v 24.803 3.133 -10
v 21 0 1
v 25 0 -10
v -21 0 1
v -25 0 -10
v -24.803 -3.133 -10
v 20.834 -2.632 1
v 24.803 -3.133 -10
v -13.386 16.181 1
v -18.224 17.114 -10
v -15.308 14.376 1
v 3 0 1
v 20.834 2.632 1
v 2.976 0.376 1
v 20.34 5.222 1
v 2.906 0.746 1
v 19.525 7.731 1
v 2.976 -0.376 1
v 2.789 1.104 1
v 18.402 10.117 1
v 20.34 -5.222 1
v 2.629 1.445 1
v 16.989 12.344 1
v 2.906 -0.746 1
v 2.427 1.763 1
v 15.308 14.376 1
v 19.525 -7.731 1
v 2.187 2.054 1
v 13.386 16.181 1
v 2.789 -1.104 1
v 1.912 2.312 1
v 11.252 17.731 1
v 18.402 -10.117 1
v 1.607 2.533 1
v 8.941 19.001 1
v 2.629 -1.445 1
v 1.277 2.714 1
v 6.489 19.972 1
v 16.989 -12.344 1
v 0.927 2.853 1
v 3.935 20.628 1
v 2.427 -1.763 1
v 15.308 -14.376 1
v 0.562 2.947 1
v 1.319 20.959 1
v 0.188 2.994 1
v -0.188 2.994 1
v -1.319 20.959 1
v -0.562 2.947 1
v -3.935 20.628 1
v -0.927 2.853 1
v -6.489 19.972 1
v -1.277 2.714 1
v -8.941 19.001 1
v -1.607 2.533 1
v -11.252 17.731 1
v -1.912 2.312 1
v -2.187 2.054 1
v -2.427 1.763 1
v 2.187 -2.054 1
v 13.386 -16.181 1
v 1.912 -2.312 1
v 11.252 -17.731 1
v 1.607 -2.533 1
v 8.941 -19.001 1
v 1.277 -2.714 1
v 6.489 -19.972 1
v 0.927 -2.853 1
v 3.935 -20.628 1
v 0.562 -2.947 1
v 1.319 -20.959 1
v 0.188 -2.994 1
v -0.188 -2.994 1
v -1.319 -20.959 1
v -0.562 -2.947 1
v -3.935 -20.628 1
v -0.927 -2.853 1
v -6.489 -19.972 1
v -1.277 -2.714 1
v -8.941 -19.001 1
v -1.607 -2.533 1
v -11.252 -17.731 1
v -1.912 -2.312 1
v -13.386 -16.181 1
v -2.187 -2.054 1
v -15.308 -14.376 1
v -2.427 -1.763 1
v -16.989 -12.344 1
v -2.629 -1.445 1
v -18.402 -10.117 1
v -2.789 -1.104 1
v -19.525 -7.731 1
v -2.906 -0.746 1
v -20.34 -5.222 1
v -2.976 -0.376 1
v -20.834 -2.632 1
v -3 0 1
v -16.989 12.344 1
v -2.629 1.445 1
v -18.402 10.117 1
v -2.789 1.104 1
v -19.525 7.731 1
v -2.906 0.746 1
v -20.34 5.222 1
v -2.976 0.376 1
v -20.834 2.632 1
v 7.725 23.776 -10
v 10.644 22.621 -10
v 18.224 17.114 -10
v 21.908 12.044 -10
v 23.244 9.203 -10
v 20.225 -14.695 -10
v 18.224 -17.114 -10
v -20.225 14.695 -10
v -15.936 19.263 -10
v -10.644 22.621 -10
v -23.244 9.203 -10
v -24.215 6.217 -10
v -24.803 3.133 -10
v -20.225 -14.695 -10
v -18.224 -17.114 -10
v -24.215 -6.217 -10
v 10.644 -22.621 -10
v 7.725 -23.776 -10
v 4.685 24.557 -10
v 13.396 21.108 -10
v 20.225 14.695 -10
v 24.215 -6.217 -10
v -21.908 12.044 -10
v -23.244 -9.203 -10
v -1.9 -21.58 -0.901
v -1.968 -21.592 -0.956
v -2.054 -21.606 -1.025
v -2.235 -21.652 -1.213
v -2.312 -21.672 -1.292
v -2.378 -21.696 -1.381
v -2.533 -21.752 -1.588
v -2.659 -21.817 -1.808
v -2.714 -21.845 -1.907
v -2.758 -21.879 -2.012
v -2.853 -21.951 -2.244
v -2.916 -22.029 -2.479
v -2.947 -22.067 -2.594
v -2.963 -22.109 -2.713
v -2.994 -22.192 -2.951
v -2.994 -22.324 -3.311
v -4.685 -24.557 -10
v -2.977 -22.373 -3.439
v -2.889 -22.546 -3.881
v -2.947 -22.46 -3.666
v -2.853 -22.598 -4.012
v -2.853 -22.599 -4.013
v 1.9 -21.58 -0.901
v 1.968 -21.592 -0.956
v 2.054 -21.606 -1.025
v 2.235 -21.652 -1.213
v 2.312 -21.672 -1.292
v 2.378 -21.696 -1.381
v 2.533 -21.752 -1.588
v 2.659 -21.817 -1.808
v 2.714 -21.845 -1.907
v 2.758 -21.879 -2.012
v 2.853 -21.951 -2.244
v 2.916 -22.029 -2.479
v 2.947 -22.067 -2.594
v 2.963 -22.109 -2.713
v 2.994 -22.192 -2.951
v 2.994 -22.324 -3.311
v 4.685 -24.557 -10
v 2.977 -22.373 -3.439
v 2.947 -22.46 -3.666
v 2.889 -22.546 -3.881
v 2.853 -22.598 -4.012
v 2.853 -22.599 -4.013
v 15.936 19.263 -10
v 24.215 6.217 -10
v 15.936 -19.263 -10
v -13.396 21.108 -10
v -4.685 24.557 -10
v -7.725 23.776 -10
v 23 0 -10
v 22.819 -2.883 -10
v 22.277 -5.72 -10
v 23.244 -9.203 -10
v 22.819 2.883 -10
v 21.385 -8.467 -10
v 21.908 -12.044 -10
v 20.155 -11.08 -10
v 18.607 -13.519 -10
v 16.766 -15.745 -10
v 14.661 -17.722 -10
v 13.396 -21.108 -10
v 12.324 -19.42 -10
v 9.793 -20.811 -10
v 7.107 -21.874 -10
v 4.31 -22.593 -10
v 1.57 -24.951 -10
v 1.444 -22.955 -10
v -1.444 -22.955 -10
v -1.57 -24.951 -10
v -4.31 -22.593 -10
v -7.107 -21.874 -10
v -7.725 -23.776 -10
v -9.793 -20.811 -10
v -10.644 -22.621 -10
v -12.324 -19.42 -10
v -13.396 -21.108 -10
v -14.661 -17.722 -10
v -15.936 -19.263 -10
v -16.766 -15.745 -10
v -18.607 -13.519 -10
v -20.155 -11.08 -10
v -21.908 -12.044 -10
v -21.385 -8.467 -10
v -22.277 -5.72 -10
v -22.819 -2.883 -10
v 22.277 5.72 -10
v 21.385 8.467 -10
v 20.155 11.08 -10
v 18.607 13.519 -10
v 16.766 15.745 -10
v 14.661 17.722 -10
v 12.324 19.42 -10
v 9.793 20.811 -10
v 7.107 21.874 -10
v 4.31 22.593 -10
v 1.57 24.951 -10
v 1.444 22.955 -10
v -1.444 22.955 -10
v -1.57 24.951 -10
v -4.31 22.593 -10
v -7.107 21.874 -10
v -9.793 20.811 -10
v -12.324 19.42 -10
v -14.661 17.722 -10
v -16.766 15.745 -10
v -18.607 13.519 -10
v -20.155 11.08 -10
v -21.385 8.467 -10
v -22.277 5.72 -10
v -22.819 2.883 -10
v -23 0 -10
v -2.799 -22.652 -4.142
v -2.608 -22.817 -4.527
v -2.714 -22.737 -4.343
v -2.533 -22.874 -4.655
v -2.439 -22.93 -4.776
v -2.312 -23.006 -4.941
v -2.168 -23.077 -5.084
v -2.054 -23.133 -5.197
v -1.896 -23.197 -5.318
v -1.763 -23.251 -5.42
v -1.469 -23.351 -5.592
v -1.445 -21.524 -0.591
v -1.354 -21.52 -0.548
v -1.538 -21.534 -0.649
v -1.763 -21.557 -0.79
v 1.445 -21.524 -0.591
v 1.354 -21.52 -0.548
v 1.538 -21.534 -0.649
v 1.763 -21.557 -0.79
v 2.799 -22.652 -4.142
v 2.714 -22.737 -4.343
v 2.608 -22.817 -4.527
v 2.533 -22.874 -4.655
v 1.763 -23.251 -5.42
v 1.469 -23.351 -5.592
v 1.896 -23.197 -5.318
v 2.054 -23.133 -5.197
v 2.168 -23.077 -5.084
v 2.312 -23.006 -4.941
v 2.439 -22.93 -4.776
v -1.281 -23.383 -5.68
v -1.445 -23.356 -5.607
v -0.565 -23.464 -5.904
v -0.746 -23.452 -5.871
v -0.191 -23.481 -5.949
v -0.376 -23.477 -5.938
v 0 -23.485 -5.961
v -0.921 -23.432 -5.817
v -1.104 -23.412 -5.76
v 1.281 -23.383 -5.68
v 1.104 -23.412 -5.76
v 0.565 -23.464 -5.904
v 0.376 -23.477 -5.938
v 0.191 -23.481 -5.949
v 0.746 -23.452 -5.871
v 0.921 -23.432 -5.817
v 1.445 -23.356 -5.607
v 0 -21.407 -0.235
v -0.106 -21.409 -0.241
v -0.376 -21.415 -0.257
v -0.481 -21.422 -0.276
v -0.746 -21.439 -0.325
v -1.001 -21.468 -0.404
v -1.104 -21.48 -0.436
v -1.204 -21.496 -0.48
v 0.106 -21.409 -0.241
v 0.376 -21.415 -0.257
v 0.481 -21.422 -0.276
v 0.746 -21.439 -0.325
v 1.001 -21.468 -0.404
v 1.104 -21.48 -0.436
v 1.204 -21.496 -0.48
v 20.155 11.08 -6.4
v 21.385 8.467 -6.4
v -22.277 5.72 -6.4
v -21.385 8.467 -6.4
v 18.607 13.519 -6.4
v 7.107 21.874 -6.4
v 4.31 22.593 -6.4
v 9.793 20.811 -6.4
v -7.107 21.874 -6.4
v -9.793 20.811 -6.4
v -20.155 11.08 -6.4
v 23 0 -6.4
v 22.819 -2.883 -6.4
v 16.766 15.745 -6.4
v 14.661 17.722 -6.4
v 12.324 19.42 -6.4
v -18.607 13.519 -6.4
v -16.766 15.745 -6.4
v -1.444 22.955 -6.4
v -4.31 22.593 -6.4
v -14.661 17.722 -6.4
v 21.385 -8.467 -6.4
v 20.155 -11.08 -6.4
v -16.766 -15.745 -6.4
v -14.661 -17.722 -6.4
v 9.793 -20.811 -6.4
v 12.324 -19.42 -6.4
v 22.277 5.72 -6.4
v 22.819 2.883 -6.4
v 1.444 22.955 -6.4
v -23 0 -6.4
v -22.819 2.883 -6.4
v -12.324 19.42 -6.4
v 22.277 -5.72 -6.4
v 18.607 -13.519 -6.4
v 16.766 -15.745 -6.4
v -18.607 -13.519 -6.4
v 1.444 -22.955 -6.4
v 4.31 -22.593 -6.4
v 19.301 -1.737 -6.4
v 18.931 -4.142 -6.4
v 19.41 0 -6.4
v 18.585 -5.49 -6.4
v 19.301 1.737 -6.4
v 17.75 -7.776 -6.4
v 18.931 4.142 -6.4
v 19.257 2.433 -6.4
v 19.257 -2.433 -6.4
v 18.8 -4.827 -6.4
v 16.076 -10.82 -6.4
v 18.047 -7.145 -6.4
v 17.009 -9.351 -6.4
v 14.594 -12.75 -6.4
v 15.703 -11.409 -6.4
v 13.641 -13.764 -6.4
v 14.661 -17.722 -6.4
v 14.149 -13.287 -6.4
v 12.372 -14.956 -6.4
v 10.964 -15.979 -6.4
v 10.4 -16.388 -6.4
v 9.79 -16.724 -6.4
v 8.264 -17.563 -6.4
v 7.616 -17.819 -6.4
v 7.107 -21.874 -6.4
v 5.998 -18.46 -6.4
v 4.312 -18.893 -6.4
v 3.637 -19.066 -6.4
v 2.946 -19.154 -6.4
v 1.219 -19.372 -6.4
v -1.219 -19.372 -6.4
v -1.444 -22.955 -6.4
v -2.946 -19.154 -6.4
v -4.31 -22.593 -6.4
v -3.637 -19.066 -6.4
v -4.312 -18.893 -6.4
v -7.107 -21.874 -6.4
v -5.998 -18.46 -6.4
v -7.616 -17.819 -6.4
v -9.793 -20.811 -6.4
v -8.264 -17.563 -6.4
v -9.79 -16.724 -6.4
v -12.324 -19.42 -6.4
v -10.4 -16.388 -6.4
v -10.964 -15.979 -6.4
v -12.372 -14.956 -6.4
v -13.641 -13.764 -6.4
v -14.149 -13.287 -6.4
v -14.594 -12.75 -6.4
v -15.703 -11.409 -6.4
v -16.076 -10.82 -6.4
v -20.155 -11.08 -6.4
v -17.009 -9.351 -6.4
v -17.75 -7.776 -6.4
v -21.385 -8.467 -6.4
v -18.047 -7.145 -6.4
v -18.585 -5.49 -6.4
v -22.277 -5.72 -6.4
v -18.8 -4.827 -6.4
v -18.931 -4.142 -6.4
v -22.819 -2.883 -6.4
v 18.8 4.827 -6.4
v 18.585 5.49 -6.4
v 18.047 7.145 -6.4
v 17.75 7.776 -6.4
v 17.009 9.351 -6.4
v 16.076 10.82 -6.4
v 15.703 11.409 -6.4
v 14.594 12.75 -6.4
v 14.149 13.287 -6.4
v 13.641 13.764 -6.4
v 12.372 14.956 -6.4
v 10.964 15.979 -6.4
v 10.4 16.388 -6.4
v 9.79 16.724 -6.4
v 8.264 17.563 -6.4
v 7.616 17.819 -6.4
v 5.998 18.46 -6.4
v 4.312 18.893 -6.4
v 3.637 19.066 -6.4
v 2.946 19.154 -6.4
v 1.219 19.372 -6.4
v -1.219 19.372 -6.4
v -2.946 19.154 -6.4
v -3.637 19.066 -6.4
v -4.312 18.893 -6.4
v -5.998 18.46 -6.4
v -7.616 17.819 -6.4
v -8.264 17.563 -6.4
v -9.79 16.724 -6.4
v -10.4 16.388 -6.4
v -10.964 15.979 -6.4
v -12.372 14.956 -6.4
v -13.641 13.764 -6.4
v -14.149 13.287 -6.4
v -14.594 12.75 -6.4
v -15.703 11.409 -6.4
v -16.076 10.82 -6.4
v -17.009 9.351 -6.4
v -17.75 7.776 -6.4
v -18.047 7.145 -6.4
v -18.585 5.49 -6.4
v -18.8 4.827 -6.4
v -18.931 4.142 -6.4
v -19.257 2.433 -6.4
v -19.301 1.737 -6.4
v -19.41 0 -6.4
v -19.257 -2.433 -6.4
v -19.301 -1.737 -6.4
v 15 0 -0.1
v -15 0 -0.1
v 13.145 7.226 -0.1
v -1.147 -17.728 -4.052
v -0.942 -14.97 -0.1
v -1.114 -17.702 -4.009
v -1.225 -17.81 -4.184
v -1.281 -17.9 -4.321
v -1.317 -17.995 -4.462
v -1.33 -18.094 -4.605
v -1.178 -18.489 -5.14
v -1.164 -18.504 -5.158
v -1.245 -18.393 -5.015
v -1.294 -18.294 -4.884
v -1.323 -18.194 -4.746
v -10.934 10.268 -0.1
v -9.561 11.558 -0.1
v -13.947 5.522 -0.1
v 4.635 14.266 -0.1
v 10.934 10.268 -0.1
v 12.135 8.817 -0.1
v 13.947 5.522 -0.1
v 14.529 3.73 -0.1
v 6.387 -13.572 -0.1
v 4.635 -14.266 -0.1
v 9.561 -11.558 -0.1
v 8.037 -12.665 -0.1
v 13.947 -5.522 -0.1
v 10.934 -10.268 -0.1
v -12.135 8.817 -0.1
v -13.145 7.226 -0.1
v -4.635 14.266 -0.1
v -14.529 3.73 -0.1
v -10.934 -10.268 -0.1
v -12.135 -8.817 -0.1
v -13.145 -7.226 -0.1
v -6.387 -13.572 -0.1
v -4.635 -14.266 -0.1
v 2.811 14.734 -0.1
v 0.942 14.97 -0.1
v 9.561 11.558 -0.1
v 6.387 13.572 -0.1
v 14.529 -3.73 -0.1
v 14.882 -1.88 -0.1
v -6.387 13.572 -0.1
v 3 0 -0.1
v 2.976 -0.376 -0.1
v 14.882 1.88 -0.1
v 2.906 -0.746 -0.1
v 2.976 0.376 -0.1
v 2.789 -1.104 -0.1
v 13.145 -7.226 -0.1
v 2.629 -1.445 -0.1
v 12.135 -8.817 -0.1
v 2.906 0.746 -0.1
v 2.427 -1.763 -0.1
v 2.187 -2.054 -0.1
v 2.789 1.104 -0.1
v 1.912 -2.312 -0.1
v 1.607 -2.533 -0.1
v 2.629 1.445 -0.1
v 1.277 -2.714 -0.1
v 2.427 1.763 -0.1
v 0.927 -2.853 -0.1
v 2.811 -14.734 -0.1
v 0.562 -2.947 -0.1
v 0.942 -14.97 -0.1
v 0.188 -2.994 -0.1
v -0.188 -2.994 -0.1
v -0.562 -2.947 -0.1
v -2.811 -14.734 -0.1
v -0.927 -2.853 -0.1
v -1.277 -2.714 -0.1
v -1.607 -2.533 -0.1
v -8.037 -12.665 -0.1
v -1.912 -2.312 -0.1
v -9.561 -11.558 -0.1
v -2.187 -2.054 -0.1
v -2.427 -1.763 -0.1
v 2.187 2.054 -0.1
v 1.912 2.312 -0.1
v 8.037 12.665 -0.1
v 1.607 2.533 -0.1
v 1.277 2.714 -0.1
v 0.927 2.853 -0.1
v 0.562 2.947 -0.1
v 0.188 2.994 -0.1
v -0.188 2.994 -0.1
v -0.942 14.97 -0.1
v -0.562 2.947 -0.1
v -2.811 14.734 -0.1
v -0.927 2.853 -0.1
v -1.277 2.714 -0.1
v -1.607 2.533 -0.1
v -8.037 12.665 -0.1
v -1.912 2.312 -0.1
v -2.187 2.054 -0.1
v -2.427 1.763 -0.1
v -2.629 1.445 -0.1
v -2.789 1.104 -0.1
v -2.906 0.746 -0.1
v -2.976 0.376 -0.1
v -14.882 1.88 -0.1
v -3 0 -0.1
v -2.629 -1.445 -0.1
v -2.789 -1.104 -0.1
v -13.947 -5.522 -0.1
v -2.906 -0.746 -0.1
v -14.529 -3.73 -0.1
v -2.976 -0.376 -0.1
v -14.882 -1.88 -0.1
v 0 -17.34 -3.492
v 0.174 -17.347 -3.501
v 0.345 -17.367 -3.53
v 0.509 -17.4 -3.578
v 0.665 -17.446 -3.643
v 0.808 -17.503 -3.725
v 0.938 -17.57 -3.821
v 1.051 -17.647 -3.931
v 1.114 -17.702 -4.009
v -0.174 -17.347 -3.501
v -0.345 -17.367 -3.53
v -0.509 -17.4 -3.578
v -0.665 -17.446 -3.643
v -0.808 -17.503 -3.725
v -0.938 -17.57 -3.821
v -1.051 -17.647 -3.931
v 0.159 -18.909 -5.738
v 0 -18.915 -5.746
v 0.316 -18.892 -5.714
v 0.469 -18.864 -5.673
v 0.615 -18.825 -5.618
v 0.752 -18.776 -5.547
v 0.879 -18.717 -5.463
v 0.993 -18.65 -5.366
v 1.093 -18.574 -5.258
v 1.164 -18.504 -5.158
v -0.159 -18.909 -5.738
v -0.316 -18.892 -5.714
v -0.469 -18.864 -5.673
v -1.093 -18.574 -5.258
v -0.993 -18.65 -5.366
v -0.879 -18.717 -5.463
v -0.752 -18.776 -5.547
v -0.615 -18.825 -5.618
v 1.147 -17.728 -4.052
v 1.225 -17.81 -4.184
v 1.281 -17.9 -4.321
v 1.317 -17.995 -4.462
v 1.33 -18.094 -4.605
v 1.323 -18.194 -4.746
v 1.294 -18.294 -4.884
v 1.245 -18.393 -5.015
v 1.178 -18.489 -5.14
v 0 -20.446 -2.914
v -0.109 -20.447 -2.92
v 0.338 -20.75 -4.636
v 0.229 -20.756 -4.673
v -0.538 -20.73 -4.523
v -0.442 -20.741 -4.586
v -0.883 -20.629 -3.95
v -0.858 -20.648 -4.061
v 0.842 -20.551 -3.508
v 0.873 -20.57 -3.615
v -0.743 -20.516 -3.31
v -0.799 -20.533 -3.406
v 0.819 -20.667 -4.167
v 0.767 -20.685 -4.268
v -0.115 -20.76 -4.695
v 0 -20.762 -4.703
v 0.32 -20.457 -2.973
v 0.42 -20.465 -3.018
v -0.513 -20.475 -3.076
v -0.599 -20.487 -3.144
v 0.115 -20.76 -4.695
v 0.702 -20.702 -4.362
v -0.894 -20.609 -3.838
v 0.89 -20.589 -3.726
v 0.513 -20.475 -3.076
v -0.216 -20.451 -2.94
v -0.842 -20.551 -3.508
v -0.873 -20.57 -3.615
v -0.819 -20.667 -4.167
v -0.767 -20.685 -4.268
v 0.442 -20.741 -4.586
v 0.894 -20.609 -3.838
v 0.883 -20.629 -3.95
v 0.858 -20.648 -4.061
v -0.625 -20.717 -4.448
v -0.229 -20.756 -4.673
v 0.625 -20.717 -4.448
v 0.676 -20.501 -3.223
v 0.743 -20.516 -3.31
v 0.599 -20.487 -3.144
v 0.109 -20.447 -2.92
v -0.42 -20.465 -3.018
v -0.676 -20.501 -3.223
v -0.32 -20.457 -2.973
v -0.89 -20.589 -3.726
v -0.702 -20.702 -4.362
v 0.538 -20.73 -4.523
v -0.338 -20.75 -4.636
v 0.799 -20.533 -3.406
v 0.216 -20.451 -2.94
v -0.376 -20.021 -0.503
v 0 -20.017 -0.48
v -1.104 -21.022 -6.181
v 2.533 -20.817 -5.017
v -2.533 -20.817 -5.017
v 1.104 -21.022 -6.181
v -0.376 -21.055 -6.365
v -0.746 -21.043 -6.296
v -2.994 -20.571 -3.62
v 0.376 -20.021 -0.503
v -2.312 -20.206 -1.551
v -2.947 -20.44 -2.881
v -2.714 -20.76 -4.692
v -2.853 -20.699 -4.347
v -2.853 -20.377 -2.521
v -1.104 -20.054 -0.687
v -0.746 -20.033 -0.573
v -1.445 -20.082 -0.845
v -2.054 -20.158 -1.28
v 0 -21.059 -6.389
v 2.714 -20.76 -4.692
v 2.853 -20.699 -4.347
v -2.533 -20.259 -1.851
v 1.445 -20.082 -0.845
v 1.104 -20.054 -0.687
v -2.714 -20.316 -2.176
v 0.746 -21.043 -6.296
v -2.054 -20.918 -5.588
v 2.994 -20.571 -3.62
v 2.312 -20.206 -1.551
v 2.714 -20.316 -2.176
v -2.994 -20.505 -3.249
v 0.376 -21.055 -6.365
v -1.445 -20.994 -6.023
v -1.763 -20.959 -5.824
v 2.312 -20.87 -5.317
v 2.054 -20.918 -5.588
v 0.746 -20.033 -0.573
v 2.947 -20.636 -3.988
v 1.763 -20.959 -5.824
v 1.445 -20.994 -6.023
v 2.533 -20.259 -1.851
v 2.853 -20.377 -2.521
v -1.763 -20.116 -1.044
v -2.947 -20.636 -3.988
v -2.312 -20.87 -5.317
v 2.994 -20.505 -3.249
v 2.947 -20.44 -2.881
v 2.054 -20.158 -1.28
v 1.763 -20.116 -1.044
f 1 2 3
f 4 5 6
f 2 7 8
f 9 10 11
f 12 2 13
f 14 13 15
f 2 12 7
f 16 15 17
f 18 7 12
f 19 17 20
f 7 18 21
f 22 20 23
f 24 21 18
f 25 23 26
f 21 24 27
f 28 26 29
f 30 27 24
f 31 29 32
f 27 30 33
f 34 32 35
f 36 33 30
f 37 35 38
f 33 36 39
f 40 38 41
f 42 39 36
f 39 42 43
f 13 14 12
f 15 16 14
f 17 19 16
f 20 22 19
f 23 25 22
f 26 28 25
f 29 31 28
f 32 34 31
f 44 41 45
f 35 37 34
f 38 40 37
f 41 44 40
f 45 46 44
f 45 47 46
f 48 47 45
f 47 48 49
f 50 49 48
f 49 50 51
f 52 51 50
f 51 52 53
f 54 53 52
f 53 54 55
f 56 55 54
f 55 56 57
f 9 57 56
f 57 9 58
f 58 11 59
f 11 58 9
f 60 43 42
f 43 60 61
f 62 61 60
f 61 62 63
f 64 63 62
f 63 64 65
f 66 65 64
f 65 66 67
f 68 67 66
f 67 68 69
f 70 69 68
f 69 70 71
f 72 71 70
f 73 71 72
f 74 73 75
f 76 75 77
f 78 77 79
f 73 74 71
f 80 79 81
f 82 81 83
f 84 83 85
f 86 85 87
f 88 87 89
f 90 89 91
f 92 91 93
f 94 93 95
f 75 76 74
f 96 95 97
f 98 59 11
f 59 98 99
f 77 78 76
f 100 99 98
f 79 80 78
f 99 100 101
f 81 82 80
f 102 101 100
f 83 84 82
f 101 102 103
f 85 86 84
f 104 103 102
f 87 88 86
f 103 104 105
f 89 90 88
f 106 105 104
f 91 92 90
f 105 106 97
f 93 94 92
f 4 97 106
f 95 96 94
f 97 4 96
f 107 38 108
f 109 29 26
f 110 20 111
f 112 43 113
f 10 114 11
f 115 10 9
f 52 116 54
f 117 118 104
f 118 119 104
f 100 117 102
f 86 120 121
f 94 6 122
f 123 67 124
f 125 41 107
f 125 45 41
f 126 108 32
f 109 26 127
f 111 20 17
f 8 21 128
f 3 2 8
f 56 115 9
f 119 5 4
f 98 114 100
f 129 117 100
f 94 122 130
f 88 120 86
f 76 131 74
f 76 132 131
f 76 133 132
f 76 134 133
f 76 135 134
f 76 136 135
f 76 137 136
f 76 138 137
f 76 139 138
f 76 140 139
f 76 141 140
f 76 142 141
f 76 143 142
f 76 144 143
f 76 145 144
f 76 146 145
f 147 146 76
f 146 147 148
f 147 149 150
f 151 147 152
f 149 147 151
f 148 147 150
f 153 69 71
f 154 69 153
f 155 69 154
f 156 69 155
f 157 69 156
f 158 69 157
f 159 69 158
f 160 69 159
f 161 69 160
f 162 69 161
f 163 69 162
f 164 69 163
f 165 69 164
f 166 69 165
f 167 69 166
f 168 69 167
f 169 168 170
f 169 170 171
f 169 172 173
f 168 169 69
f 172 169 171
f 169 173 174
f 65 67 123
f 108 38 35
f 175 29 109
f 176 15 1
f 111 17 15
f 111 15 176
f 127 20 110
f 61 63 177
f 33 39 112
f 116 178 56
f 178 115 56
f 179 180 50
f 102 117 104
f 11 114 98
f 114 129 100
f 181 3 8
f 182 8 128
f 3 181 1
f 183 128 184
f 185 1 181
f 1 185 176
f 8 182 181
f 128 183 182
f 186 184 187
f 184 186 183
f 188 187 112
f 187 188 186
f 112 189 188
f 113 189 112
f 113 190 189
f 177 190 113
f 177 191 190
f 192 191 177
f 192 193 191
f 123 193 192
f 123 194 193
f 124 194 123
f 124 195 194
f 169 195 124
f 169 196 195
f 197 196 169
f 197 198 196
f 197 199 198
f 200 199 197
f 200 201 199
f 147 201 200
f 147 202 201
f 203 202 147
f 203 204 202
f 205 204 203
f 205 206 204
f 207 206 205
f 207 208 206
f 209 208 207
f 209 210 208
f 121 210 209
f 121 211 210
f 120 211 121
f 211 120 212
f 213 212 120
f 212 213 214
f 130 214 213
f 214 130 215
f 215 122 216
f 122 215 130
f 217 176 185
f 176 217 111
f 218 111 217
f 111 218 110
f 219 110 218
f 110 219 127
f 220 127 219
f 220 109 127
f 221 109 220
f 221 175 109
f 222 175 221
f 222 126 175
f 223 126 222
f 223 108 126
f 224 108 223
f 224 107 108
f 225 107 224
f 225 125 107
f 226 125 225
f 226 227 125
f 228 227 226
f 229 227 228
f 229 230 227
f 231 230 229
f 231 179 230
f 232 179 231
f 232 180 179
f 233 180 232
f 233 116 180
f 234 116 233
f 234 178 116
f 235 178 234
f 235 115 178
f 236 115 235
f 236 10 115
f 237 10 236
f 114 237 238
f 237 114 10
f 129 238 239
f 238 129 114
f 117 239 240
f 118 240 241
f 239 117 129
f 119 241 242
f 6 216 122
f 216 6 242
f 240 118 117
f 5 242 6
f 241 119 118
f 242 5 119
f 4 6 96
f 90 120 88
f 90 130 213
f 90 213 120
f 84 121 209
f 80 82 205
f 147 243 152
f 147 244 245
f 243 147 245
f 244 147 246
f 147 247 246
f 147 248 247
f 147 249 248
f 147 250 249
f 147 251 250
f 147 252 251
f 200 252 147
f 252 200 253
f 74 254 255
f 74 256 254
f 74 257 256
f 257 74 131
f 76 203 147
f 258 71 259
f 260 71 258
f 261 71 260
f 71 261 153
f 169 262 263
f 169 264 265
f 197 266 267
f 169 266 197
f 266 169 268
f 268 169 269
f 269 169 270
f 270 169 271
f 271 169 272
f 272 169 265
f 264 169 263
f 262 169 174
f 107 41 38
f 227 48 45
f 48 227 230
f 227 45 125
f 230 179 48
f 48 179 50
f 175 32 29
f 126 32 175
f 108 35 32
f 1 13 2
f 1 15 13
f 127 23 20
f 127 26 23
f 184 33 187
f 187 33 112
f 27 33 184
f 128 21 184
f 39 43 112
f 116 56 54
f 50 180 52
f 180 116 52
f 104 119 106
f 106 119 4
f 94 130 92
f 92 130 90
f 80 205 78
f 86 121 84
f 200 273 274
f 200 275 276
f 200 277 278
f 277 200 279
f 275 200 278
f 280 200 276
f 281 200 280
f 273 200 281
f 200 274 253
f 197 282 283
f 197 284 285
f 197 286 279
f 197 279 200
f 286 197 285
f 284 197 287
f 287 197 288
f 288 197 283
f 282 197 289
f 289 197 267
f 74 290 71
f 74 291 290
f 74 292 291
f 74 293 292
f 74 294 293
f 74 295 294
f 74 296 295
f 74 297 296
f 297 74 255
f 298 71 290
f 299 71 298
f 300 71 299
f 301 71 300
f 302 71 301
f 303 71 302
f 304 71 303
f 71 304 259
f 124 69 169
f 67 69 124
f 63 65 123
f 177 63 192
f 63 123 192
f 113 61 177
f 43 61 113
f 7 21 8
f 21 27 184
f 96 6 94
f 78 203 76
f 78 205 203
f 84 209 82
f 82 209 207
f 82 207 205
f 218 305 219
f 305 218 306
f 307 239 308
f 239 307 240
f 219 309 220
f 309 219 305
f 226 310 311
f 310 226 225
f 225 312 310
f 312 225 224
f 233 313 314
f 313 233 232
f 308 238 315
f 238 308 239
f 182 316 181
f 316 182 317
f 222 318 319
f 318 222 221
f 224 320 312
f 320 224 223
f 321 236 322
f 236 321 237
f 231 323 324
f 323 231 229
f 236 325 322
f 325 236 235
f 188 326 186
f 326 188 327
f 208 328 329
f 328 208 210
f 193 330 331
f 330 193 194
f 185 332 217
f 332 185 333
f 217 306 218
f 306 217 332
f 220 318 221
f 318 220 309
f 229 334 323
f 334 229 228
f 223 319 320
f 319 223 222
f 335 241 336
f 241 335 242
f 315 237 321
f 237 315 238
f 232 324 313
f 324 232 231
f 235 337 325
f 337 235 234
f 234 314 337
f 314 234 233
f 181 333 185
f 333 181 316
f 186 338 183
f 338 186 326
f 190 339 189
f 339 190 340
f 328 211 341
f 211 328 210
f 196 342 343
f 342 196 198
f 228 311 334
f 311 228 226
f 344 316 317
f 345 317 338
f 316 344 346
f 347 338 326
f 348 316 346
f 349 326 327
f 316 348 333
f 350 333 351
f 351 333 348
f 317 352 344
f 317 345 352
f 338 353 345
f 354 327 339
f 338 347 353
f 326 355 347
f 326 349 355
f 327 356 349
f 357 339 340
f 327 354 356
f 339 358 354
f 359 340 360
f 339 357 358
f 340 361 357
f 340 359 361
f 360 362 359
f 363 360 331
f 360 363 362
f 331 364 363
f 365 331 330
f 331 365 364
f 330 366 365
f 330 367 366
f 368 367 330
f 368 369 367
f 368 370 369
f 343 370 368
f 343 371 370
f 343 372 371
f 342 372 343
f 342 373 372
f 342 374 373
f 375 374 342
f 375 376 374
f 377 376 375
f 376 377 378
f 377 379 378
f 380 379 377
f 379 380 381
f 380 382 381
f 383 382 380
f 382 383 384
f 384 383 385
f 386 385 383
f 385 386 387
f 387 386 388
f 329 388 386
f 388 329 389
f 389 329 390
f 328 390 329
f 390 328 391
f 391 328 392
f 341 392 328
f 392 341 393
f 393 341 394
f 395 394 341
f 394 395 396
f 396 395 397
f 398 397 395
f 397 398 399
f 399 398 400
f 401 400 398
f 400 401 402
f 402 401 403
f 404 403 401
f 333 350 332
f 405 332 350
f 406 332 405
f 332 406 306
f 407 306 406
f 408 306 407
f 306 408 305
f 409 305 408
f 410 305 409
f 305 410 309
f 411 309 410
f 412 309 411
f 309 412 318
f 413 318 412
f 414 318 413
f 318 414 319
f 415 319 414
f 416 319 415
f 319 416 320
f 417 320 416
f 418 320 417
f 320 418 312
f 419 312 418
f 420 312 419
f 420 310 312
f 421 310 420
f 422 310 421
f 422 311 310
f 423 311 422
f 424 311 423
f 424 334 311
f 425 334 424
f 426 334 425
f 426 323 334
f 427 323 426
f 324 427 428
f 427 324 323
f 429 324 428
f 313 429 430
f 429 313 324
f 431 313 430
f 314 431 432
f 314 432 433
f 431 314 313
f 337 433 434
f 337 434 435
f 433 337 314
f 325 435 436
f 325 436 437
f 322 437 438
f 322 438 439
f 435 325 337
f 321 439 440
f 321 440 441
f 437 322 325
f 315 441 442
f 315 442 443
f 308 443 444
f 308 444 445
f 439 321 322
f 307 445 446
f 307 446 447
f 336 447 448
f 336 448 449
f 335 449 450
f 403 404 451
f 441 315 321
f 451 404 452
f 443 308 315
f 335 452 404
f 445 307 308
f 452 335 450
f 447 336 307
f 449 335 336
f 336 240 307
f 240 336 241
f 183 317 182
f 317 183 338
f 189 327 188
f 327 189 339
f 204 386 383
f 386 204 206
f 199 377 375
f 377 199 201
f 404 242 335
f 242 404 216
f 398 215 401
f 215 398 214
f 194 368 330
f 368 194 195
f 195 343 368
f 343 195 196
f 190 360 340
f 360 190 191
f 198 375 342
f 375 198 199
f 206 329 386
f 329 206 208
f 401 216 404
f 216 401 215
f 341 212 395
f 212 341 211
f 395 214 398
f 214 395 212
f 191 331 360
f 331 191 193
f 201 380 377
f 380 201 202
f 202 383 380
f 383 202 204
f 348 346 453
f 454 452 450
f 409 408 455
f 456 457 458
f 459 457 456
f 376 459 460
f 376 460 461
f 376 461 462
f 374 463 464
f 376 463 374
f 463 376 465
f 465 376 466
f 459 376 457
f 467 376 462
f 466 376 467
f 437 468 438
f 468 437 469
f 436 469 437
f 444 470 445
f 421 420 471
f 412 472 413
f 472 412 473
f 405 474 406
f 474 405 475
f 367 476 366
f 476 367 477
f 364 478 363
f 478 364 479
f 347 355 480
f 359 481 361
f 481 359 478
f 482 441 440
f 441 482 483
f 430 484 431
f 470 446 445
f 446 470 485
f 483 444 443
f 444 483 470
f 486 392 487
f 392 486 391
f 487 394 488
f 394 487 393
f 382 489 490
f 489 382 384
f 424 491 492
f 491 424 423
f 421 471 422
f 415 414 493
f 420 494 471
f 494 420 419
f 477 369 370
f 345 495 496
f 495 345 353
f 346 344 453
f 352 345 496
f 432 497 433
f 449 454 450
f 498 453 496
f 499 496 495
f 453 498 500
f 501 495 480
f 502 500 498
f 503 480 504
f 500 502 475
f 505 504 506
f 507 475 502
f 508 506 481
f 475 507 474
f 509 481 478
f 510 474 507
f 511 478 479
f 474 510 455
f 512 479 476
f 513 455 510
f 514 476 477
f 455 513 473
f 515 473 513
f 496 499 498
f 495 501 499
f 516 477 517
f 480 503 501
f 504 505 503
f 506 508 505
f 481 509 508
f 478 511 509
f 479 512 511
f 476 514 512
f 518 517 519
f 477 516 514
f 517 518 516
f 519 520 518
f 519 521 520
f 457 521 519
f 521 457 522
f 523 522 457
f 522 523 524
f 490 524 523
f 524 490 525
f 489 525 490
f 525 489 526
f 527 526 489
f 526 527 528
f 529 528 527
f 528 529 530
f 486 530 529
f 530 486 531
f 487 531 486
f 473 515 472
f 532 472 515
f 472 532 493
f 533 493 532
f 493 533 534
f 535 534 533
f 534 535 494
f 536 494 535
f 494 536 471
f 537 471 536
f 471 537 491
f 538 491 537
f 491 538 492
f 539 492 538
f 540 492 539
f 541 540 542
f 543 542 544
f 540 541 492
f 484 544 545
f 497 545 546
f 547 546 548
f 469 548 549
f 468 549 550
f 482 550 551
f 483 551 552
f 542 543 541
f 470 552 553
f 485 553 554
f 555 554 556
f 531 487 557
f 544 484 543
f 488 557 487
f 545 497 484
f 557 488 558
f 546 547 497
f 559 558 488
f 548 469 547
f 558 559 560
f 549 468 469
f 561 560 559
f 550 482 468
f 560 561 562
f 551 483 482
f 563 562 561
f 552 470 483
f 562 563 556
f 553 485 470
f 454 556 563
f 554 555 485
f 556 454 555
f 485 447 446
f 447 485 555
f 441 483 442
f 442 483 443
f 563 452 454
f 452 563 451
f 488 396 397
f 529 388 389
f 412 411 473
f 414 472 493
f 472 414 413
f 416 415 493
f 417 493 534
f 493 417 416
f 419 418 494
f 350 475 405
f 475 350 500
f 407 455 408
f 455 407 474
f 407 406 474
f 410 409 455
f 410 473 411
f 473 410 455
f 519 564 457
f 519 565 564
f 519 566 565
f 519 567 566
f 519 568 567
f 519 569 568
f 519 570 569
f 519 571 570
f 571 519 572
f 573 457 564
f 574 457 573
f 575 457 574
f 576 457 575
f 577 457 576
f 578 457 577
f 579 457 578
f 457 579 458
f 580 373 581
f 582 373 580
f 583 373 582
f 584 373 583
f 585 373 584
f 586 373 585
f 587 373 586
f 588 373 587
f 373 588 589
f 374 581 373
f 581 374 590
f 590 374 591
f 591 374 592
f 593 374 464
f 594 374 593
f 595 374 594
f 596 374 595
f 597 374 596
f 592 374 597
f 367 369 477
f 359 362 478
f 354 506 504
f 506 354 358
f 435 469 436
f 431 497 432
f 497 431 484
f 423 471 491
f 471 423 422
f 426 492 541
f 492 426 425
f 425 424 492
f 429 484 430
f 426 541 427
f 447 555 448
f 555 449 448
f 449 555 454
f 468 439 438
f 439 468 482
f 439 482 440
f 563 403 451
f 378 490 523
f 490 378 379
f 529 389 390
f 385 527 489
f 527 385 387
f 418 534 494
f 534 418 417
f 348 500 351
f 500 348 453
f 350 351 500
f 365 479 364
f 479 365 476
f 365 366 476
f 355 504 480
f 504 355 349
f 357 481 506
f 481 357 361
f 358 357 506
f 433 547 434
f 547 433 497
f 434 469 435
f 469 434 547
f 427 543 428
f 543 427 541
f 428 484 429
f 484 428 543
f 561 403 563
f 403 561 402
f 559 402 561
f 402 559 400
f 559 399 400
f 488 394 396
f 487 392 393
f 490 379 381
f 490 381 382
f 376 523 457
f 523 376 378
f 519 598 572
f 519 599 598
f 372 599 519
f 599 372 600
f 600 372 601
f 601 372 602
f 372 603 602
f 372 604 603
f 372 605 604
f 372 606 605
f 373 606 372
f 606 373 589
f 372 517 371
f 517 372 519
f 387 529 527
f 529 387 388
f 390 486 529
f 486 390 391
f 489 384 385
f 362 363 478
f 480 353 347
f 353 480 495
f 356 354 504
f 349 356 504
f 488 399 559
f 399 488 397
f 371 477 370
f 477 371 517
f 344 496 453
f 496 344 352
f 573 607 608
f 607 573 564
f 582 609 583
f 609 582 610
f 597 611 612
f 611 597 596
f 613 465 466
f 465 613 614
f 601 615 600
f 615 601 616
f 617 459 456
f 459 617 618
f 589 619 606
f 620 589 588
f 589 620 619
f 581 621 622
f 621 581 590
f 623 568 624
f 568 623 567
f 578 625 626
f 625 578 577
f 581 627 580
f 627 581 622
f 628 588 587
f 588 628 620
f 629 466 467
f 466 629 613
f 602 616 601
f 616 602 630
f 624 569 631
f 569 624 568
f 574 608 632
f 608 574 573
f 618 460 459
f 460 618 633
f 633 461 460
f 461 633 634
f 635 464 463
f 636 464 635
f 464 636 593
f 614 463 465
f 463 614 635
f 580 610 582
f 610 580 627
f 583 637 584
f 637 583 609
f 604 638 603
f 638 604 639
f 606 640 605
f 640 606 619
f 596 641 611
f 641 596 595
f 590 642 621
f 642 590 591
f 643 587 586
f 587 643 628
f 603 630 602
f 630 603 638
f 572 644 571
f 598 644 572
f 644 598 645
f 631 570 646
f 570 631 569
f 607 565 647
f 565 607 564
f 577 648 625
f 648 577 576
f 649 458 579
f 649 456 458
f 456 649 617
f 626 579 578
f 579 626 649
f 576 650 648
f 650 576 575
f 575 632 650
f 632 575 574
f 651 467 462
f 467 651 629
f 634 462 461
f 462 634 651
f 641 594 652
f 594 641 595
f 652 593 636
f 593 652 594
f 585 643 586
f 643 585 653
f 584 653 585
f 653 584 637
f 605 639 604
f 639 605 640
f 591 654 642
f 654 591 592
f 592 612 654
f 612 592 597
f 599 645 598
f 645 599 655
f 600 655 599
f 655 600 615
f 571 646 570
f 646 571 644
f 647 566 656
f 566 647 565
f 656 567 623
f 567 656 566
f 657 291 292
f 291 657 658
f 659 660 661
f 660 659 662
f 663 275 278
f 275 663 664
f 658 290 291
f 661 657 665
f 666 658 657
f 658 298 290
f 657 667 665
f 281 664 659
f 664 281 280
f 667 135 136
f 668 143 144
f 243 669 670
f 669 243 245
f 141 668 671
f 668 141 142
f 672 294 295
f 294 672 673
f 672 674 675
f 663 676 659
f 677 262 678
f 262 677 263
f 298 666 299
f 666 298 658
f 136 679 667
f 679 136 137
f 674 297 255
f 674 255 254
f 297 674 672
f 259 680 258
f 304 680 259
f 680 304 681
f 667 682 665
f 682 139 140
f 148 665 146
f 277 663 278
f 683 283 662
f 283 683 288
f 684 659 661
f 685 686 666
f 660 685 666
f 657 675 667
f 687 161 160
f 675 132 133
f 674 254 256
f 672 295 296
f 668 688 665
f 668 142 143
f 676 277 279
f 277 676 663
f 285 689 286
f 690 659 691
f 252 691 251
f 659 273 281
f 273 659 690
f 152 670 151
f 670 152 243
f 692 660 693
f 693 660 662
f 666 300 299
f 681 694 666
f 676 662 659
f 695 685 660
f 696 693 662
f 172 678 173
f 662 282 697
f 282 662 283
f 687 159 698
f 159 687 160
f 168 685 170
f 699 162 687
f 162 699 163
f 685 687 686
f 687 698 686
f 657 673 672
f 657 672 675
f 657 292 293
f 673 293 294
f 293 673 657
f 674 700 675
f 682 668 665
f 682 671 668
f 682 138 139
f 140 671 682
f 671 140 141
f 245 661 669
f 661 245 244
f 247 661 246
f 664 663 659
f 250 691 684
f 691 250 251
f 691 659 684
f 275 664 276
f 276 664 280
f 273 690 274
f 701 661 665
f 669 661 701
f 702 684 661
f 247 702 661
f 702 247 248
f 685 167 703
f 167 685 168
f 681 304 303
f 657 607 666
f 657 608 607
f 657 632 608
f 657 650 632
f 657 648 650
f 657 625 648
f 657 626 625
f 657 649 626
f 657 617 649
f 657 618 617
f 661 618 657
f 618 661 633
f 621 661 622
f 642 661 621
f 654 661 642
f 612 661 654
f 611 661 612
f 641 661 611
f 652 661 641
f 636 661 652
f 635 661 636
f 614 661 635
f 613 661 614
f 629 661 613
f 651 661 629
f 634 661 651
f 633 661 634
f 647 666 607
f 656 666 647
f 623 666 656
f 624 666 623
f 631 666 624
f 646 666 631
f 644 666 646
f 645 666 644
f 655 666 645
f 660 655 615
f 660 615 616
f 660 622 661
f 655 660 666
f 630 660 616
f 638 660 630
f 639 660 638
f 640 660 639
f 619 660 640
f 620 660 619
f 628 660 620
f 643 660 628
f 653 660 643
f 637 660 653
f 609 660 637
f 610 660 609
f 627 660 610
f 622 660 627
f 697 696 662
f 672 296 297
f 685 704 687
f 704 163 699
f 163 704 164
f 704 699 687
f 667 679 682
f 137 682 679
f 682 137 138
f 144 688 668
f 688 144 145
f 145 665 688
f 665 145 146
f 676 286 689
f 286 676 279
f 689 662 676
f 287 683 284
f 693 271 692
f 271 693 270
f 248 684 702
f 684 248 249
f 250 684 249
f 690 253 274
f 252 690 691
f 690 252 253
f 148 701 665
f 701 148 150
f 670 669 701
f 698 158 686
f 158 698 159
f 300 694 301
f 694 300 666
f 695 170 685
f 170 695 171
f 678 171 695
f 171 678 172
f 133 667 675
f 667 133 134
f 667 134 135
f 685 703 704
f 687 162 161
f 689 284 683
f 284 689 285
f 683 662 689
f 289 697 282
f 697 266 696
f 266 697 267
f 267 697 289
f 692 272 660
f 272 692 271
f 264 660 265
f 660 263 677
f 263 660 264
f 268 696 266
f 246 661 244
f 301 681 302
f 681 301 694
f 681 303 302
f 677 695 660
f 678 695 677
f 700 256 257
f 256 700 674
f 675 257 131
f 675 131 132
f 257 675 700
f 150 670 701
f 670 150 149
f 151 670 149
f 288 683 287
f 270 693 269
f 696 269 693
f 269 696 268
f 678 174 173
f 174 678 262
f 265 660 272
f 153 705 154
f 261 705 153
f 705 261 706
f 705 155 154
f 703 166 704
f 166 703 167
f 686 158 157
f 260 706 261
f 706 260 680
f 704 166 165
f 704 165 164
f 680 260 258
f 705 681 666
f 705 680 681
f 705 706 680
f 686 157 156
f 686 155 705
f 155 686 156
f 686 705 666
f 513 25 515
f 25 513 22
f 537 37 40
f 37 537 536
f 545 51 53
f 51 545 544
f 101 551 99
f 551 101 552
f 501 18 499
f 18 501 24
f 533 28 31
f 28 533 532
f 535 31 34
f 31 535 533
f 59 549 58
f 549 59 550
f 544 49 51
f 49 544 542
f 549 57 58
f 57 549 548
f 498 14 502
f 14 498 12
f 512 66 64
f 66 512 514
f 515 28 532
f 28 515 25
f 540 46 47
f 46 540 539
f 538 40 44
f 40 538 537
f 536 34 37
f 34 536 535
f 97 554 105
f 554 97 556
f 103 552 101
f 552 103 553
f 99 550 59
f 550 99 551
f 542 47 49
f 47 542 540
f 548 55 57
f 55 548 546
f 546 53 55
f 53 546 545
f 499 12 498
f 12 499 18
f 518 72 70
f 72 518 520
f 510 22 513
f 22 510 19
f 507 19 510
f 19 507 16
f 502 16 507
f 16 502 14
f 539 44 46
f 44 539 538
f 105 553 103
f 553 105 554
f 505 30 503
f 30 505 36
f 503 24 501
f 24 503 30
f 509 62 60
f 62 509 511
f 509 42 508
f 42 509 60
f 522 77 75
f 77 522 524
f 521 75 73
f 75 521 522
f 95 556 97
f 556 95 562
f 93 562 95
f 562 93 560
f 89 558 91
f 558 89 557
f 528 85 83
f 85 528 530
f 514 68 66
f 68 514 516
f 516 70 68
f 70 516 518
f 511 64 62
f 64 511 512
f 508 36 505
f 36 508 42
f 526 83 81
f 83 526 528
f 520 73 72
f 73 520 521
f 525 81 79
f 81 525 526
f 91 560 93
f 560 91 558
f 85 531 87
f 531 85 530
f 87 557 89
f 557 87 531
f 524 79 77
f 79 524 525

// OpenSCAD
$fn=50;
 difference()
{
union() {
    difference(){
        translate([0,0,-10]) cylinder(11,25,21);
        translate([0,0,-10.1]) cylinder(3.7,23,23);
      translate([0,0,-10.1]) cylinder(10,22,15);
           

    }
}
 translate([0,0,-30]) cylinder(55,3,3);
union(){
 color("red") translate([0,-20,-4]) rotate([0,-70,90]) cylinder(12,2,0, true);
 color("red") translate([0,-23,-3]) rotate([0,-80,90]) cylinder(5,3,3, true);
}
}

  
